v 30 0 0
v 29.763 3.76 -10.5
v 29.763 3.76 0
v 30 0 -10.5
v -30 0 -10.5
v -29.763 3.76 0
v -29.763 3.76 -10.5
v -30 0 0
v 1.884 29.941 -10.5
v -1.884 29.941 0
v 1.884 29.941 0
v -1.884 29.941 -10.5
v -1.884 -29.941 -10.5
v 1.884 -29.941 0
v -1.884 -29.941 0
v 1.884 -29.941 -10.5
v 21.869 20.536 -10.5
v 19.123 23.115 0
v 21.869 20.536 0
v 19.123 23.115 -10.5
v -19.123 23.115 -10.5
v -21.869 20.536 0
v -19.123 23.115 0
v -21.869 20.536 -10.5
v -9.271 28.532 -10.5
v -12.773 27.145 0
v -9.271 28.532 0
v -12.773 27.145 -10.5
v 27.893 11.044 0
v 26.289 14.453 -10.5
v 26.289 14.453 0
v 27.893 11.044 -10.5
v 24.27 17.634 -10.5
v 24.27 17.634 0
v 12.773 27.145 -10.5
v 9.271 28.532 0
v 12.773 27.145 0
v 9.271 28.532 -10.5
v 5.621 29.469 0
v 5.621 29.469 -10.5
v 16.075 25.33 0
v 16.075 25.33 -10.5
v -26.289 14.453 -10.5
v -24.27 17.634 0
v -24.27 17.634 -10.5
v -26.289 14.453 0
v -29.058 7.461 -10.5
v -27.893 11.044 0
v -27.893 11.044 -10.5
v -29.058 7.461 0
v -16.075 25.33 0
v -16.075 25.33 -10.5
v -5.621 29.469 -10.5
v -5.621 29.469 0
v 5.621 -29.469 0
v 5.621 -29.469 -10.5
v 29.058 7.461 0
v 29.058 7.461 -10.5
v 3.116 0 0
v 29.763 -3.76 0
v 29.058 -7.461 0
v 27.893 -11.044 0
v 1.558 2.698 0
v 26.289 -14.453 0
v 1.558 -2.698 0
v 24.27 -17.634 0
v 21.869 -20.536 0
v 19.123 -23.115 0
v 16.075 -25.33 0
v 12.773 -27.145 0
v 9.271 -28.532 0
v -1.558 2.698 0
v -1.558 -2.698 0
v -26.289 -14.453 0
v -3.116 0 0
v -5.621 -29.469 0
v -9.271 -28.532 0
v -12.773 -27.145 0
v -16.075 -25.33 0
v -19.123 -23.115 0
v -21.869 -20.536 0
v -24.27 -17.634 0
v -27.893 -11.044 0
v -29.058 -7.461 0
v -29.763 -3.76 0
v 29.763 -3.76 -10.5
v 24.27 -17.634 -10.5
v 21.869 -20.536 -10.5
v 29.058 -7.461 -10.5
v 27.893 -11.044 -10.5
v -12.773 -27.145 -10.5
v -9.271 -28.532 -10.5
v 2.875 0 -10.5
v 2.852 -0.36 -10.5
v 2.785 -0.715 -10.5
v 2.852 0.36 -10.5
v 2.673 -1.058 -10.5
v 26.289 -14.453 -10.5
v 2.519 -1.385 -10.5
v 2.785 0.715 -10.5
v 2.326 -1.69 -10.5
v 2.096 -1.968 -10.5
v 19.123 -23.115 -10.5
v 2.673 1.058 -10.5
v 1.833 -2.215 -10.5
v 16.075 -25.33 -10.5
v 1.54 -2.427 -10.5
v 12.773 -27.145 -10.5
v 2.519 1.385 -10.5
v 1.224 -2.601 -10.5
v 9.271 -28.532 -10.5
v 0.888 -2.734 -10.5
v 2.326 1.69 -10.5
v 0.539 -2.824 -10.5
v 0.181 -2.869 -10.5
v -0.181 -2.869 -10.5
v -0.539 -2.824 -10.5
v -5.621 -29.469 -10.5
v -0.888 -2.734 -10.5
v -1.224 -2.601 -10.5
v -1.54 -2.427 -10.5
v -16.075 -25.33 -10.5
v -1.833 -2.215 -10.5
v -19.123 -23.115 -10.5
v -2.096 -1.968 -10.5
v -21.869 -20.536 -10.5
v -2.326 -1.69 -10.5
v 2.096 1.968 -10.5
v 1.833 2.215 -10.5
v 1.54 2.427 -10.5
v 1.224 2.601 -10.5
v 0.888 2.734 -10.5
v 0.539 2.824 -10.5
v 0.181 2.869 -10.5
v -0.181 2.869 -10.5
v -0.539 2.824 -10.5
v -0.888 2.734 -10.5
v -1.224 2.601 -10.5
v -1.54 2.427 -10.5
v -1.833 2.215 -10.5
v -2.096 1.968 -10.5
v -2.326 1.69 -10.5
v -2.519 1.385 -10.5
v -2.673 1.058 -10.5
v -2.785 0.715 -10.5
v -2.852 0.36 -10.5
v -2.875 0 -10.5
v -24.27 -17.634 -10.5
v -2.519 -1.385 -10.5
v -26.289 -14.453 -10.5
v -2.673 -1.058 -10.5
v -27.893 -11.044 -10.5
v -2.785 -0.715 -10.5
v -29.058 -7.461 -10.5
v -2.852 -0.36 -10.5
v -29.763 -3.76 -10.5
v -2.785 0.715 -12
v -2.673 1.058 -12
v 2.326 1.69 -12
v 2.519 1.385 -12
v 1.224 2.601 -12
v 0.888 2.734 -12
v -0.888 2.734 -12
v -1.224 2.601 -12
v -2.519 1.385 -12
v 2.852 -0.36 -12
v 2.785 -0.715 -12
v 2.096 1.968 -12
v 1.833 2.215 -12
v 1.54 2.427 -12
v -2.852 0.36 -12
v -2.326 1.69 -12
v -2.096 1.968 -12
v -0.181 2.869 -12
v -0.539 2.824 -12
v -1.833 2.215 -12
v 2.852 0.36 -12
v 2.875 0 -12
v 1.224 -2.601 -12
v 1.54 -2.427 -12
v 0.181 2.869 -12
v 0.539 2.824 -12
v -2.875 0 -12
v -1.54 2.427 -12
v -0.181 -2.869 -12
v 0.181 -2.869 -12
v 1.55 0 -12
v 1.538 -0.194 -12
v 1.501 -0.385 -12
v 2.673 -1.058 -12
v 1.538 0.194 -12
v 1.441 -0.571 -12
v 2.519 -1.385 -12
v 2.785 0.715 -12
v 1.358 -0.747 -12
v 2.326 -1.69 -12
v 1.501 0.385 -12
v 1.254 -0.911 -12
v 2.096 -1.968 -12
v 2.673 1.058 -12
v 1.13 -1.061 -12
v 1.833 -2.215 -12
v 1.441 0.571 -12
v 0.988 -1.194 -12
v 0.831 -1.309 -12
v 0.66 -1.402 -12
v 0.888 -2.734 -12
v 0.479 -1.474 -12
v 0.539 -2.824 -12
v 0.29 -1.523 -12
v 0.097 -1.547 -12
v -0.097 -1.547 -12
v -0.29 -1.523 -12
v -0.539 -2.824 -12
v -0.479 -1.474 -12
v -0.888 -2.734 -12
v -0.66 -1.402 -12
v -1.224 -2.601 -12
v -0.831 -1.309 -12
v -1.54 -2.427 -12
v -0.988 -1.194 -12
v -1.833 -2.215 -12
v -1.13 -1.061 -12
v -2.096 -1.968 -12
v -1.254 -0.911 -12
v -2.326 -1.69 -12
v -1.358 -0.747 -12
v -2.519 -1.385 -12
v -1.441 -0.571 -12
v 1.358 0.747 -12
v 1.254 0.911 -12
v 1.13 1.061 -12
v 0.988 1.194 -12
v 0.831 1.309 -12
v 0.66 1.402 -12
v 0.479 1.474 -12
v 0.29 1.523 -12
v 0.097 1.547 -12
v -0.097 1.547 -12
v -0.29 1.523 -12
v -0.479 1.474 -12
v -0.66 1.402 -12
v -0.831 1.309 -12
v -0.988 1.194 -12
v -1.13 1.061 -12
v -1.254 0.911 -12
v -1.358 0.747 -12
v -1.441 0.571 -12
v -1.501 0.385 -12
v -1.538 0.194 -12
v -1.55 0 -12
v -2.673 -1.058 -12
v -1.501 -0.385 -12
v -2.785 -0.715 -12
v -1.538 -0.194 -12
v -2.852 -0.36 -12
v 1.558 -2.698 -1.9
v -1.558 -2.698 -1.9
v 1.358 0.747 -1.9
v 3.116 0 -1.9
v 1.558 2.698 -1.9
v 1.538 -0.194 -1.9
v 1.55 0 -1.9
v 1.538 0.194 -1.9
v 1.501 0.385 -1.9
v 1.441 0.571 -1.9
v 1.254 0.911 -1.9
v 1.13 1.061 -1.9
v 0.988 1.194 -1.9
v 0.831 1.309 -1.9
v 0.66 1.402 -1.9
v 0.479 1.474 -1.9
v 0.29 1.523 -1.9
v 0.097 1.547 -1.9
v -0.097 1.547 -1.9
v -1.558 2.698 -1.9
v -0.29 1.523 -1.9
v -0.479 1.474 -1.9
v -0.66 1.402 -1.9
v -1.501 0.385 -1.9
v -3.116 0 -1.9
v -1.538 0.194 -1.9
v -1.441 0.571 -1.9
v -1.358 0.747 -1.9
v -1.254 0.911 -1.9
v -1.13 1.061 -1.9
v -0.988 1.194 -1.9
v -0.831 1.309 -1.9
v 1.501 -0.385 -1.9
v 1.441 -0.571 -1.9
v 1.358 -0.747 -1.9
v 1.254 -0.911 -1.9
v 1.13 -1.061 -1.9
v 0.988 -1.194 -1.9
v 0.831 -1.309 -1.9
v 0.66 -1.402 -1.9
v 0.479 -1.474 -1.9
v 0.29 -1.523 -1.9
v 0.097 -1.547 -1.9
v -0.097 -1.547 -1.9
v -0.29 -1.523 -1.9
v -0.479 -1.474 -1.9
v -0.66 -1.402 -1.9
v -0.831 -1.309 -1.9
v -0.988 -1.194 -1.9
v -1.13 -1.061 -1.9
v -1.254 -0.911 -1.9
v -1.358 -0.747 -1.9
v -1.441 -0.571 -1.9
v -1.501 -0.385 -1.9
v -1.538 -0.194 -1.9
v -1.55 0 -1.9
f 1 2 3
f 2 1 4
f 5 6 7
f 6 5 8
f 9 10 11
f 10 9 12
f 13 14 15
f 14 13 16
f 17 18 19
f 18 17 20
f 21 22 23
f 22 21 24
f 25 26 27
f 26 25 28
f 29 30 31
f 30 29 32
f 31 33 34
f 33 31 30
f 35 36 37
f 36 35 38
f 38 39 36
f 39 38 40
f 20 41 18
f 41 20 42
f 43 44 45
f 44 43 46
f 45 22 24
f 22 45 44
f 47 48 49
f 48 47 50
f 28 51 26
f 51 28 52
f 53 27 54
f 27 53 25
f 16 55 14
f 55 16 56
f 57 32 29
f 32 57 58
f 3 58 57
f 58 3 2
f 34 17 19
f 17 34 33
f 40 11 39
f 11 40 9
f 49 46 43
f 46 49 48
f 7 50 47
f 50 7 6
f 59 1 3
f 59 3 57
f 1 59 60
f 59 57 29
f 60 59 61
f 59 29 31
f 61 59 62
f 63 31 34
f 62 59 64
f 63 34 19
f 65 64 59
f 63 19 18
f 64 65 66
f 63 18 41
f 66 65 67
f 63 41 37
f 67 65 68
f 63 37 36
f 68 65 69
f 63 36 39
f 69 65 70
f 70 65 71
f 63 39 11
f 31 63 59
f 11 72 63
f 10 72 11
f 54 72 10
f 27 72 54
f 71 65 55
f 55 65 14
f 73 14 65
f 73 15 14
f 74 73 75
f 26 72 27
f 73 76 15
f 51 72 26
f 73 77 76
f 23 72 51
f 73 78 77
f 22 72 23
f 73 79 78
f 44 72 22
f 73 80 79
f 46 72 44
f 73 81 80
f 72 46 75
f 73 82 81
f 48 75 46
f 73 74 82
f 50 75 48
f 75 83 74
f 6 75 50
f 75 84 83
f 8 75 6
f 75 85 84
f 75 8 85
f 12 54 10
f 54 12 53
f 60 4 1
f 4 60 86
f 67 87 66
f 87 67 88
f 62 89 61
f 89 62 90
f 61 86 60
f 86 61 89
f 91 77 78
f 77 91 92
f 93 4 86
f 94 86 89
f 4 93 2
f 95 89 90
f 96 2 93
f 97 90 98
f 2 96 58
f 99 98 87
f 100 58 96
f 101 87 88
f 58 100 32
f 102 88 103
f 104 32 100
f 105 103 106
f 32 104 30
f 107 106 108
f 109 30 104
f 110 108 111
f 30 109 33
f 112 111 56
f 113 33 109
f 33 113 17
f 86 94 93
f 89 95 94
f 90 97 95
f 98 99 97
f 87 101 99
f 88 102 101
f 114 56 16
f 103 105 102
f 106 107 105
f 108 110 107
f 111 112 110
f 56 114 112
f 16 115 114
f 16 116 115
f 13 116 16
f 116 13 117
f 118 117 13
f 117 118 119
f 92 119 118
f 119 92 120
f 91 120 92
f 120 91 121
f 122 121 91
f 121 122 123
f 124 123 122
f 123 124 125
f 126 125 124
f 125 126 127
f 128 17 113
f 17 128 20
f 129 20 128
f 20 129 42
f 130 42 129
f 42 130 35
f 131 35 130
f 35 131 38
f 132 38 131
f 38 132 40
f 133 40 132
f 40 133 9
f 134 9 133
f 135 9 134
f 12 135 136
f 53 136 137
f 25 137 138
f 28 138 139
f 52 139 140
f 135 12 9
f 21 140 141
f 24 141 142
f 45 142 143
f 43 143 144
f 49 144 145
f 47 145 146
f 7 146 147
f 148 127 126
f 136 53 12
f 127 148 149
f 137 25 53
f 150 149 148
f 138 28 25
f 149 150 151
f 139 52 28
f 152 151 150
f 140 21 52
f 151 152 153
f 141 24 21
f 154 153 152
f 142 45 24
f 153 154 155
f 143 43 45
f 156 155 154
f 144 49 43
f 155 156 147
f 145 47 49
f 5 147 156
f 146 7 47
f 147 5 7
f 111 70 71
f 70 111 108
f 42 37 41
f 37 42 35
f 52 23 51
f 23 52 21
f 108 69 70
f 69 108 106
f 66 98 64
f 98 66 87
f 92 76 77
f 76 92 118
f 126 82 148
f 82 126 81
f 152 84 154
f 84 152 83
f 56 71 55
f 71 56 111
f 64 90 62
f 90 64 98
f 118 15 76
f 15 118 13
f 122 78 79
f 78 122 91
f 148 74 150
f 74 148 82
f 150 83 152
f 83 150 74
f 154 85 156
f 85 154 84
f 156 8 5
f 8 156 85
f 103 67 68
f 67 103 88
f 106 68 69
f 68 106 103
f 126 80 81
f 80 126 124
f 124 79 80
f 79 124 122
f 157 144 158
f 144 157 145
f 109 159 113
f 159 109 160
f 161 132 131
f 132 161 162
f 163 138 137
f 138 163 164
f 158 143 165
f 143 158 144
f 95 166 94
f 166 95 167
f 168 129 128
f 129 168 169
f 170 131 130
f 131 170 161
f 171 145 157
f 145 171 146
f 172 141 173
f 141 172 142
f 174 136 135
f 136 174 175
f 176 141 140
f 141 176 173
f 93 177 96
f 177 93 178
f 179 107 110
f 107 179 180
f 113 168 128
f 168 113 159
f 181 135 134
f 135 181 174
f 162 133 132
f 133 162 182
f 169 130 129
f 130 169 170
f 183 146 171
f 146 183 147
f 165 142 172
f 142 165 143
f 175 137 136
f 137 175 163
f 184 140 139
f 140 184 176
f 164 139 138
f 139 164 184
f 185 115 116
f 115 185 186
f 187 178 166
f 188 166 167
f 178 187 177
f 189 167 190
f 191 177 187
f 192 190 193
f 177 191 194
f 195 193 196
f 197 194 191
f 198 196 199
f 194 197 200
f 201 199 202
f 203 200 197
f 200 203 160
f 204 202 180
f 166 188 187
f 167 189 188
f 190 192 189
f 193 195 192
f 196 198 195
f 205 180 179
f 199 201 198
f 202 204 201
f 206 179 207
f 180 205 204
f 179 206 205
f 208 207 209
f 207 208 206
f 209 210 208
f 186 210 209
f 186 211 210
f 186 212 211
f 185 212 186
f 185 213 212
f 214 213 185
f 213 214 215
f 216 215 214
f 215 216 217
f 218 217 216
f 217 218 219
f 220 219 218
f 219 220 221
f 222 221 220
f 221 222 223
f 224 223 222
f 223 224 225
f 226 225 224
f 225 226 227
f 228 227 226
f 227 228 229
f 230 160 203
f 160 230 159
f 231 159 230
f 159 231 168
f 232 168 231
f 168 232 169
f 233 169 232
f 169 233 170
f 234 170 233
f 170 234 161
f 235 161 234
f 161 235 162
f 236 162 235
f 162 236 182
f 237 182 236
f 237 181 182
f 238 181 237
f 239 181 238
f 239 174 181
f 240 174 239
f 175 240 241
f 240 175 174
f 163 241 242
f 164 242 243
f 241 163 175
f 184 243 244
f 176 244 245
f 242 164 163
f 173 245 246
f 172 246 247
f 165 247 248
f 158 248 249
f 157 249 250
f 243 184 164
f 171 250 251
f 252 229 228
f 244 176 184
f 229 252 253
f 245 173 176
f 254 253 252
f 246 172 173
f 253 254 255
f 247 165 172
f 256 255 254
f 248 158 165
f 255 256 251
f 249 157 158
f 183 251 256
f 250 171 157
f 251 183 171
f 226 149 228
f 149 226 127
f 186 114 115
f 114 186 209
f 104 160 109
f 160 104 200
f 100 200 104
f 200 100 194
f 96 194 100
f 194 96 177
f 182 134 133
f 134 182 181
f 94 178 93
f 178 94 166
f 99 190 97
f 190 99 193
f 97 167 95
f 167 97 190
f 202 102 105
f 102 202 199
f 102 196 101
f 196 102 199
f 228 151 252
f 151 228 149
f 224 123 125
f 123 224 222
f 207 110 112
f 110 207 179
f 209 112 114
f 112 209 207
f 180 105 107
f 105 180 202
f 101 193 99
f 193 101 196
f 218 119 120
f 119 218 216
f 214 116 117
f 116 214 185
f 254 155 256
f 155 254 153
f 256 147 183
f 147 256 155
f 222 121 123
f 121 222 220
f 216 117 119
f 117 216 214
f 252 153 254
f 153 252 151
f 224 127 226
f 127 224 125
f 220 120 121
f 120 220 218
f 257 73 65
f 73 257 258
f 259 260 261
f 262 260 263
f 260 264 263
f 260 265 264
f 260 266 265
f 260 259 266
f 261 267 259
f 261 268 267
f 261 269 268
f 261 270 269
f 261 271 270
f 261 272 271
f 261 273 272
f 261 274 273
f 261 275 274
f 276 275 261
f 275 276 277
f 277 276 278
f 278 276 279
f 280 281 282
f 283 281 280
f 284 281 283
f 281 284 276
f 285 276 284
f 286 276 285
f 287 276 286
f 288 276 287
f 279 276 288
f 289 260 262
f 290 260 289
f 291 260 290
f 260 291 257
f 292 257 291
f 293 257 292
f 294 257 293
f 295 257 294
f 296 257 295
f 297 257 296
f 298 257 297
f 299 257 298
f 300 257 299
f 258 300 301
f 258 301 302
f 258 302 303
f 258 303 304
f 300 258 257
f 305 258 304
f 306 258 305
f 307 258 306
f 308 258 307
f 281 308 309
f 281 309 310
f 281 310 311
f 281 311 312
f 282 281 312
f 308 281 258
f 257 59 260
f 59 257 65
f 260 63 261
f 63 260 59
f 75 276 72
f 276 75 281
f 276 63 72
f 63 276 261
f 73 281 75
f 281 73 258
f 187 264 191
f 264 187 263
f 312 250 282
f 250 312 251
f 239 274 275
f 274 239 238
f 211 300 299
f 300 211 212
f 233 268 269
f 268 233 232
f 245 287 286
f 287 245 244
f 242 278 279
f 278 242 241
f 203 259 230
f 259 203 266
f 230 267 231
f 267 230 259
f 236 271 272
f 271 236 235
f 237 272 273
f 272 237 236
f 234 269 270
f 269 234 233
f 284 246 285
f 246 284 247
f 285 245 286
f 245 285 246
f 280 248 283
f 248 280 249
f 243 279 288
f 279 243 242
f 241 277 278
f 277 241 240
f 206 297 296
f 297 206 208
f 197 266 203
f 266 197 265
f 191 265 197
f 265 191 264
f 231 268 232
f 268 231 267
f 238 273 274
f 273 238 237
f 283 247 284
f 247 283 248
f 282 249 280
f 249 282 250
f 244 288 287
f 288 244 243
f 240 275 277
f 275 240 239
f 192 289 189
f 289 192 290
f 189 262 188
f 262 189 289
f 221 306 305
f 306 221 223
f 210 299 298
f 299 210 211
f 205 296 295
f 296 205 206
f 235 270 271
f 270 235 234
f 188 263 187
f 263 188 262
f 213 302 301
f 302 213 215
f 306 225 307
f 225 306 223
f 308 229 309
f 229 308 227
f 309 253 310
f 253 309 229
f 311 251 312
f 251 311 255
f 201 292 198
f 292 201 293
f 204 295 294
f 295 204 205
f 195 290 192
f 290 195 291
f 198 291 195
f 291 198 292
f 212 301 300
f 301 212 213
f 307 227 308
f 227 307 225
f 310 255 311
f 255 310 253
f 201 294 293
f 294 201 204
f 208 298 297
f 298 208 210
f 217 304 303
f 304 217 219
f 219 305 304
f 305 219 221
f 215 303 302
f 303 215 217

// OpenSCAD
$fn = 50;


difference() {
	union() {
		translate(v = [0, 0, -10.5000000000]) {
			cylinder(h = 10.5000000000, r = 30.0000000000);
		}
		#translate(v = [0, 0, -12.0000000000]) {
			cylinder(h = 12, r = 2.8750000000);
		}
	}
	union() {
		translate(v = [0, 0, 0]) {
			rotate(a = [0, 0, 0]) {
				difference() {
					union() {
						translate(v = [0, 0, -1.9000000000]) {
							linear_extrude(height = 1.9000000000) {
								polygon(points = [[3.1158000000, 0.0000000000], [1.5579000000, 2.6983619531], [-1.5579000000, 2.6983619531], [-3.1158000000, 0.0000000000], [-1.5579000000, -2.6983619531], [1.5579000000, -2.6983619531]]);
							}
						}
					}
					union();
				}
			}
		}
		#translate(v = [0, 0, -100.0000000000]) {
			cylinder(h = 200, r = 1.5500000000);
		}
	}
}
